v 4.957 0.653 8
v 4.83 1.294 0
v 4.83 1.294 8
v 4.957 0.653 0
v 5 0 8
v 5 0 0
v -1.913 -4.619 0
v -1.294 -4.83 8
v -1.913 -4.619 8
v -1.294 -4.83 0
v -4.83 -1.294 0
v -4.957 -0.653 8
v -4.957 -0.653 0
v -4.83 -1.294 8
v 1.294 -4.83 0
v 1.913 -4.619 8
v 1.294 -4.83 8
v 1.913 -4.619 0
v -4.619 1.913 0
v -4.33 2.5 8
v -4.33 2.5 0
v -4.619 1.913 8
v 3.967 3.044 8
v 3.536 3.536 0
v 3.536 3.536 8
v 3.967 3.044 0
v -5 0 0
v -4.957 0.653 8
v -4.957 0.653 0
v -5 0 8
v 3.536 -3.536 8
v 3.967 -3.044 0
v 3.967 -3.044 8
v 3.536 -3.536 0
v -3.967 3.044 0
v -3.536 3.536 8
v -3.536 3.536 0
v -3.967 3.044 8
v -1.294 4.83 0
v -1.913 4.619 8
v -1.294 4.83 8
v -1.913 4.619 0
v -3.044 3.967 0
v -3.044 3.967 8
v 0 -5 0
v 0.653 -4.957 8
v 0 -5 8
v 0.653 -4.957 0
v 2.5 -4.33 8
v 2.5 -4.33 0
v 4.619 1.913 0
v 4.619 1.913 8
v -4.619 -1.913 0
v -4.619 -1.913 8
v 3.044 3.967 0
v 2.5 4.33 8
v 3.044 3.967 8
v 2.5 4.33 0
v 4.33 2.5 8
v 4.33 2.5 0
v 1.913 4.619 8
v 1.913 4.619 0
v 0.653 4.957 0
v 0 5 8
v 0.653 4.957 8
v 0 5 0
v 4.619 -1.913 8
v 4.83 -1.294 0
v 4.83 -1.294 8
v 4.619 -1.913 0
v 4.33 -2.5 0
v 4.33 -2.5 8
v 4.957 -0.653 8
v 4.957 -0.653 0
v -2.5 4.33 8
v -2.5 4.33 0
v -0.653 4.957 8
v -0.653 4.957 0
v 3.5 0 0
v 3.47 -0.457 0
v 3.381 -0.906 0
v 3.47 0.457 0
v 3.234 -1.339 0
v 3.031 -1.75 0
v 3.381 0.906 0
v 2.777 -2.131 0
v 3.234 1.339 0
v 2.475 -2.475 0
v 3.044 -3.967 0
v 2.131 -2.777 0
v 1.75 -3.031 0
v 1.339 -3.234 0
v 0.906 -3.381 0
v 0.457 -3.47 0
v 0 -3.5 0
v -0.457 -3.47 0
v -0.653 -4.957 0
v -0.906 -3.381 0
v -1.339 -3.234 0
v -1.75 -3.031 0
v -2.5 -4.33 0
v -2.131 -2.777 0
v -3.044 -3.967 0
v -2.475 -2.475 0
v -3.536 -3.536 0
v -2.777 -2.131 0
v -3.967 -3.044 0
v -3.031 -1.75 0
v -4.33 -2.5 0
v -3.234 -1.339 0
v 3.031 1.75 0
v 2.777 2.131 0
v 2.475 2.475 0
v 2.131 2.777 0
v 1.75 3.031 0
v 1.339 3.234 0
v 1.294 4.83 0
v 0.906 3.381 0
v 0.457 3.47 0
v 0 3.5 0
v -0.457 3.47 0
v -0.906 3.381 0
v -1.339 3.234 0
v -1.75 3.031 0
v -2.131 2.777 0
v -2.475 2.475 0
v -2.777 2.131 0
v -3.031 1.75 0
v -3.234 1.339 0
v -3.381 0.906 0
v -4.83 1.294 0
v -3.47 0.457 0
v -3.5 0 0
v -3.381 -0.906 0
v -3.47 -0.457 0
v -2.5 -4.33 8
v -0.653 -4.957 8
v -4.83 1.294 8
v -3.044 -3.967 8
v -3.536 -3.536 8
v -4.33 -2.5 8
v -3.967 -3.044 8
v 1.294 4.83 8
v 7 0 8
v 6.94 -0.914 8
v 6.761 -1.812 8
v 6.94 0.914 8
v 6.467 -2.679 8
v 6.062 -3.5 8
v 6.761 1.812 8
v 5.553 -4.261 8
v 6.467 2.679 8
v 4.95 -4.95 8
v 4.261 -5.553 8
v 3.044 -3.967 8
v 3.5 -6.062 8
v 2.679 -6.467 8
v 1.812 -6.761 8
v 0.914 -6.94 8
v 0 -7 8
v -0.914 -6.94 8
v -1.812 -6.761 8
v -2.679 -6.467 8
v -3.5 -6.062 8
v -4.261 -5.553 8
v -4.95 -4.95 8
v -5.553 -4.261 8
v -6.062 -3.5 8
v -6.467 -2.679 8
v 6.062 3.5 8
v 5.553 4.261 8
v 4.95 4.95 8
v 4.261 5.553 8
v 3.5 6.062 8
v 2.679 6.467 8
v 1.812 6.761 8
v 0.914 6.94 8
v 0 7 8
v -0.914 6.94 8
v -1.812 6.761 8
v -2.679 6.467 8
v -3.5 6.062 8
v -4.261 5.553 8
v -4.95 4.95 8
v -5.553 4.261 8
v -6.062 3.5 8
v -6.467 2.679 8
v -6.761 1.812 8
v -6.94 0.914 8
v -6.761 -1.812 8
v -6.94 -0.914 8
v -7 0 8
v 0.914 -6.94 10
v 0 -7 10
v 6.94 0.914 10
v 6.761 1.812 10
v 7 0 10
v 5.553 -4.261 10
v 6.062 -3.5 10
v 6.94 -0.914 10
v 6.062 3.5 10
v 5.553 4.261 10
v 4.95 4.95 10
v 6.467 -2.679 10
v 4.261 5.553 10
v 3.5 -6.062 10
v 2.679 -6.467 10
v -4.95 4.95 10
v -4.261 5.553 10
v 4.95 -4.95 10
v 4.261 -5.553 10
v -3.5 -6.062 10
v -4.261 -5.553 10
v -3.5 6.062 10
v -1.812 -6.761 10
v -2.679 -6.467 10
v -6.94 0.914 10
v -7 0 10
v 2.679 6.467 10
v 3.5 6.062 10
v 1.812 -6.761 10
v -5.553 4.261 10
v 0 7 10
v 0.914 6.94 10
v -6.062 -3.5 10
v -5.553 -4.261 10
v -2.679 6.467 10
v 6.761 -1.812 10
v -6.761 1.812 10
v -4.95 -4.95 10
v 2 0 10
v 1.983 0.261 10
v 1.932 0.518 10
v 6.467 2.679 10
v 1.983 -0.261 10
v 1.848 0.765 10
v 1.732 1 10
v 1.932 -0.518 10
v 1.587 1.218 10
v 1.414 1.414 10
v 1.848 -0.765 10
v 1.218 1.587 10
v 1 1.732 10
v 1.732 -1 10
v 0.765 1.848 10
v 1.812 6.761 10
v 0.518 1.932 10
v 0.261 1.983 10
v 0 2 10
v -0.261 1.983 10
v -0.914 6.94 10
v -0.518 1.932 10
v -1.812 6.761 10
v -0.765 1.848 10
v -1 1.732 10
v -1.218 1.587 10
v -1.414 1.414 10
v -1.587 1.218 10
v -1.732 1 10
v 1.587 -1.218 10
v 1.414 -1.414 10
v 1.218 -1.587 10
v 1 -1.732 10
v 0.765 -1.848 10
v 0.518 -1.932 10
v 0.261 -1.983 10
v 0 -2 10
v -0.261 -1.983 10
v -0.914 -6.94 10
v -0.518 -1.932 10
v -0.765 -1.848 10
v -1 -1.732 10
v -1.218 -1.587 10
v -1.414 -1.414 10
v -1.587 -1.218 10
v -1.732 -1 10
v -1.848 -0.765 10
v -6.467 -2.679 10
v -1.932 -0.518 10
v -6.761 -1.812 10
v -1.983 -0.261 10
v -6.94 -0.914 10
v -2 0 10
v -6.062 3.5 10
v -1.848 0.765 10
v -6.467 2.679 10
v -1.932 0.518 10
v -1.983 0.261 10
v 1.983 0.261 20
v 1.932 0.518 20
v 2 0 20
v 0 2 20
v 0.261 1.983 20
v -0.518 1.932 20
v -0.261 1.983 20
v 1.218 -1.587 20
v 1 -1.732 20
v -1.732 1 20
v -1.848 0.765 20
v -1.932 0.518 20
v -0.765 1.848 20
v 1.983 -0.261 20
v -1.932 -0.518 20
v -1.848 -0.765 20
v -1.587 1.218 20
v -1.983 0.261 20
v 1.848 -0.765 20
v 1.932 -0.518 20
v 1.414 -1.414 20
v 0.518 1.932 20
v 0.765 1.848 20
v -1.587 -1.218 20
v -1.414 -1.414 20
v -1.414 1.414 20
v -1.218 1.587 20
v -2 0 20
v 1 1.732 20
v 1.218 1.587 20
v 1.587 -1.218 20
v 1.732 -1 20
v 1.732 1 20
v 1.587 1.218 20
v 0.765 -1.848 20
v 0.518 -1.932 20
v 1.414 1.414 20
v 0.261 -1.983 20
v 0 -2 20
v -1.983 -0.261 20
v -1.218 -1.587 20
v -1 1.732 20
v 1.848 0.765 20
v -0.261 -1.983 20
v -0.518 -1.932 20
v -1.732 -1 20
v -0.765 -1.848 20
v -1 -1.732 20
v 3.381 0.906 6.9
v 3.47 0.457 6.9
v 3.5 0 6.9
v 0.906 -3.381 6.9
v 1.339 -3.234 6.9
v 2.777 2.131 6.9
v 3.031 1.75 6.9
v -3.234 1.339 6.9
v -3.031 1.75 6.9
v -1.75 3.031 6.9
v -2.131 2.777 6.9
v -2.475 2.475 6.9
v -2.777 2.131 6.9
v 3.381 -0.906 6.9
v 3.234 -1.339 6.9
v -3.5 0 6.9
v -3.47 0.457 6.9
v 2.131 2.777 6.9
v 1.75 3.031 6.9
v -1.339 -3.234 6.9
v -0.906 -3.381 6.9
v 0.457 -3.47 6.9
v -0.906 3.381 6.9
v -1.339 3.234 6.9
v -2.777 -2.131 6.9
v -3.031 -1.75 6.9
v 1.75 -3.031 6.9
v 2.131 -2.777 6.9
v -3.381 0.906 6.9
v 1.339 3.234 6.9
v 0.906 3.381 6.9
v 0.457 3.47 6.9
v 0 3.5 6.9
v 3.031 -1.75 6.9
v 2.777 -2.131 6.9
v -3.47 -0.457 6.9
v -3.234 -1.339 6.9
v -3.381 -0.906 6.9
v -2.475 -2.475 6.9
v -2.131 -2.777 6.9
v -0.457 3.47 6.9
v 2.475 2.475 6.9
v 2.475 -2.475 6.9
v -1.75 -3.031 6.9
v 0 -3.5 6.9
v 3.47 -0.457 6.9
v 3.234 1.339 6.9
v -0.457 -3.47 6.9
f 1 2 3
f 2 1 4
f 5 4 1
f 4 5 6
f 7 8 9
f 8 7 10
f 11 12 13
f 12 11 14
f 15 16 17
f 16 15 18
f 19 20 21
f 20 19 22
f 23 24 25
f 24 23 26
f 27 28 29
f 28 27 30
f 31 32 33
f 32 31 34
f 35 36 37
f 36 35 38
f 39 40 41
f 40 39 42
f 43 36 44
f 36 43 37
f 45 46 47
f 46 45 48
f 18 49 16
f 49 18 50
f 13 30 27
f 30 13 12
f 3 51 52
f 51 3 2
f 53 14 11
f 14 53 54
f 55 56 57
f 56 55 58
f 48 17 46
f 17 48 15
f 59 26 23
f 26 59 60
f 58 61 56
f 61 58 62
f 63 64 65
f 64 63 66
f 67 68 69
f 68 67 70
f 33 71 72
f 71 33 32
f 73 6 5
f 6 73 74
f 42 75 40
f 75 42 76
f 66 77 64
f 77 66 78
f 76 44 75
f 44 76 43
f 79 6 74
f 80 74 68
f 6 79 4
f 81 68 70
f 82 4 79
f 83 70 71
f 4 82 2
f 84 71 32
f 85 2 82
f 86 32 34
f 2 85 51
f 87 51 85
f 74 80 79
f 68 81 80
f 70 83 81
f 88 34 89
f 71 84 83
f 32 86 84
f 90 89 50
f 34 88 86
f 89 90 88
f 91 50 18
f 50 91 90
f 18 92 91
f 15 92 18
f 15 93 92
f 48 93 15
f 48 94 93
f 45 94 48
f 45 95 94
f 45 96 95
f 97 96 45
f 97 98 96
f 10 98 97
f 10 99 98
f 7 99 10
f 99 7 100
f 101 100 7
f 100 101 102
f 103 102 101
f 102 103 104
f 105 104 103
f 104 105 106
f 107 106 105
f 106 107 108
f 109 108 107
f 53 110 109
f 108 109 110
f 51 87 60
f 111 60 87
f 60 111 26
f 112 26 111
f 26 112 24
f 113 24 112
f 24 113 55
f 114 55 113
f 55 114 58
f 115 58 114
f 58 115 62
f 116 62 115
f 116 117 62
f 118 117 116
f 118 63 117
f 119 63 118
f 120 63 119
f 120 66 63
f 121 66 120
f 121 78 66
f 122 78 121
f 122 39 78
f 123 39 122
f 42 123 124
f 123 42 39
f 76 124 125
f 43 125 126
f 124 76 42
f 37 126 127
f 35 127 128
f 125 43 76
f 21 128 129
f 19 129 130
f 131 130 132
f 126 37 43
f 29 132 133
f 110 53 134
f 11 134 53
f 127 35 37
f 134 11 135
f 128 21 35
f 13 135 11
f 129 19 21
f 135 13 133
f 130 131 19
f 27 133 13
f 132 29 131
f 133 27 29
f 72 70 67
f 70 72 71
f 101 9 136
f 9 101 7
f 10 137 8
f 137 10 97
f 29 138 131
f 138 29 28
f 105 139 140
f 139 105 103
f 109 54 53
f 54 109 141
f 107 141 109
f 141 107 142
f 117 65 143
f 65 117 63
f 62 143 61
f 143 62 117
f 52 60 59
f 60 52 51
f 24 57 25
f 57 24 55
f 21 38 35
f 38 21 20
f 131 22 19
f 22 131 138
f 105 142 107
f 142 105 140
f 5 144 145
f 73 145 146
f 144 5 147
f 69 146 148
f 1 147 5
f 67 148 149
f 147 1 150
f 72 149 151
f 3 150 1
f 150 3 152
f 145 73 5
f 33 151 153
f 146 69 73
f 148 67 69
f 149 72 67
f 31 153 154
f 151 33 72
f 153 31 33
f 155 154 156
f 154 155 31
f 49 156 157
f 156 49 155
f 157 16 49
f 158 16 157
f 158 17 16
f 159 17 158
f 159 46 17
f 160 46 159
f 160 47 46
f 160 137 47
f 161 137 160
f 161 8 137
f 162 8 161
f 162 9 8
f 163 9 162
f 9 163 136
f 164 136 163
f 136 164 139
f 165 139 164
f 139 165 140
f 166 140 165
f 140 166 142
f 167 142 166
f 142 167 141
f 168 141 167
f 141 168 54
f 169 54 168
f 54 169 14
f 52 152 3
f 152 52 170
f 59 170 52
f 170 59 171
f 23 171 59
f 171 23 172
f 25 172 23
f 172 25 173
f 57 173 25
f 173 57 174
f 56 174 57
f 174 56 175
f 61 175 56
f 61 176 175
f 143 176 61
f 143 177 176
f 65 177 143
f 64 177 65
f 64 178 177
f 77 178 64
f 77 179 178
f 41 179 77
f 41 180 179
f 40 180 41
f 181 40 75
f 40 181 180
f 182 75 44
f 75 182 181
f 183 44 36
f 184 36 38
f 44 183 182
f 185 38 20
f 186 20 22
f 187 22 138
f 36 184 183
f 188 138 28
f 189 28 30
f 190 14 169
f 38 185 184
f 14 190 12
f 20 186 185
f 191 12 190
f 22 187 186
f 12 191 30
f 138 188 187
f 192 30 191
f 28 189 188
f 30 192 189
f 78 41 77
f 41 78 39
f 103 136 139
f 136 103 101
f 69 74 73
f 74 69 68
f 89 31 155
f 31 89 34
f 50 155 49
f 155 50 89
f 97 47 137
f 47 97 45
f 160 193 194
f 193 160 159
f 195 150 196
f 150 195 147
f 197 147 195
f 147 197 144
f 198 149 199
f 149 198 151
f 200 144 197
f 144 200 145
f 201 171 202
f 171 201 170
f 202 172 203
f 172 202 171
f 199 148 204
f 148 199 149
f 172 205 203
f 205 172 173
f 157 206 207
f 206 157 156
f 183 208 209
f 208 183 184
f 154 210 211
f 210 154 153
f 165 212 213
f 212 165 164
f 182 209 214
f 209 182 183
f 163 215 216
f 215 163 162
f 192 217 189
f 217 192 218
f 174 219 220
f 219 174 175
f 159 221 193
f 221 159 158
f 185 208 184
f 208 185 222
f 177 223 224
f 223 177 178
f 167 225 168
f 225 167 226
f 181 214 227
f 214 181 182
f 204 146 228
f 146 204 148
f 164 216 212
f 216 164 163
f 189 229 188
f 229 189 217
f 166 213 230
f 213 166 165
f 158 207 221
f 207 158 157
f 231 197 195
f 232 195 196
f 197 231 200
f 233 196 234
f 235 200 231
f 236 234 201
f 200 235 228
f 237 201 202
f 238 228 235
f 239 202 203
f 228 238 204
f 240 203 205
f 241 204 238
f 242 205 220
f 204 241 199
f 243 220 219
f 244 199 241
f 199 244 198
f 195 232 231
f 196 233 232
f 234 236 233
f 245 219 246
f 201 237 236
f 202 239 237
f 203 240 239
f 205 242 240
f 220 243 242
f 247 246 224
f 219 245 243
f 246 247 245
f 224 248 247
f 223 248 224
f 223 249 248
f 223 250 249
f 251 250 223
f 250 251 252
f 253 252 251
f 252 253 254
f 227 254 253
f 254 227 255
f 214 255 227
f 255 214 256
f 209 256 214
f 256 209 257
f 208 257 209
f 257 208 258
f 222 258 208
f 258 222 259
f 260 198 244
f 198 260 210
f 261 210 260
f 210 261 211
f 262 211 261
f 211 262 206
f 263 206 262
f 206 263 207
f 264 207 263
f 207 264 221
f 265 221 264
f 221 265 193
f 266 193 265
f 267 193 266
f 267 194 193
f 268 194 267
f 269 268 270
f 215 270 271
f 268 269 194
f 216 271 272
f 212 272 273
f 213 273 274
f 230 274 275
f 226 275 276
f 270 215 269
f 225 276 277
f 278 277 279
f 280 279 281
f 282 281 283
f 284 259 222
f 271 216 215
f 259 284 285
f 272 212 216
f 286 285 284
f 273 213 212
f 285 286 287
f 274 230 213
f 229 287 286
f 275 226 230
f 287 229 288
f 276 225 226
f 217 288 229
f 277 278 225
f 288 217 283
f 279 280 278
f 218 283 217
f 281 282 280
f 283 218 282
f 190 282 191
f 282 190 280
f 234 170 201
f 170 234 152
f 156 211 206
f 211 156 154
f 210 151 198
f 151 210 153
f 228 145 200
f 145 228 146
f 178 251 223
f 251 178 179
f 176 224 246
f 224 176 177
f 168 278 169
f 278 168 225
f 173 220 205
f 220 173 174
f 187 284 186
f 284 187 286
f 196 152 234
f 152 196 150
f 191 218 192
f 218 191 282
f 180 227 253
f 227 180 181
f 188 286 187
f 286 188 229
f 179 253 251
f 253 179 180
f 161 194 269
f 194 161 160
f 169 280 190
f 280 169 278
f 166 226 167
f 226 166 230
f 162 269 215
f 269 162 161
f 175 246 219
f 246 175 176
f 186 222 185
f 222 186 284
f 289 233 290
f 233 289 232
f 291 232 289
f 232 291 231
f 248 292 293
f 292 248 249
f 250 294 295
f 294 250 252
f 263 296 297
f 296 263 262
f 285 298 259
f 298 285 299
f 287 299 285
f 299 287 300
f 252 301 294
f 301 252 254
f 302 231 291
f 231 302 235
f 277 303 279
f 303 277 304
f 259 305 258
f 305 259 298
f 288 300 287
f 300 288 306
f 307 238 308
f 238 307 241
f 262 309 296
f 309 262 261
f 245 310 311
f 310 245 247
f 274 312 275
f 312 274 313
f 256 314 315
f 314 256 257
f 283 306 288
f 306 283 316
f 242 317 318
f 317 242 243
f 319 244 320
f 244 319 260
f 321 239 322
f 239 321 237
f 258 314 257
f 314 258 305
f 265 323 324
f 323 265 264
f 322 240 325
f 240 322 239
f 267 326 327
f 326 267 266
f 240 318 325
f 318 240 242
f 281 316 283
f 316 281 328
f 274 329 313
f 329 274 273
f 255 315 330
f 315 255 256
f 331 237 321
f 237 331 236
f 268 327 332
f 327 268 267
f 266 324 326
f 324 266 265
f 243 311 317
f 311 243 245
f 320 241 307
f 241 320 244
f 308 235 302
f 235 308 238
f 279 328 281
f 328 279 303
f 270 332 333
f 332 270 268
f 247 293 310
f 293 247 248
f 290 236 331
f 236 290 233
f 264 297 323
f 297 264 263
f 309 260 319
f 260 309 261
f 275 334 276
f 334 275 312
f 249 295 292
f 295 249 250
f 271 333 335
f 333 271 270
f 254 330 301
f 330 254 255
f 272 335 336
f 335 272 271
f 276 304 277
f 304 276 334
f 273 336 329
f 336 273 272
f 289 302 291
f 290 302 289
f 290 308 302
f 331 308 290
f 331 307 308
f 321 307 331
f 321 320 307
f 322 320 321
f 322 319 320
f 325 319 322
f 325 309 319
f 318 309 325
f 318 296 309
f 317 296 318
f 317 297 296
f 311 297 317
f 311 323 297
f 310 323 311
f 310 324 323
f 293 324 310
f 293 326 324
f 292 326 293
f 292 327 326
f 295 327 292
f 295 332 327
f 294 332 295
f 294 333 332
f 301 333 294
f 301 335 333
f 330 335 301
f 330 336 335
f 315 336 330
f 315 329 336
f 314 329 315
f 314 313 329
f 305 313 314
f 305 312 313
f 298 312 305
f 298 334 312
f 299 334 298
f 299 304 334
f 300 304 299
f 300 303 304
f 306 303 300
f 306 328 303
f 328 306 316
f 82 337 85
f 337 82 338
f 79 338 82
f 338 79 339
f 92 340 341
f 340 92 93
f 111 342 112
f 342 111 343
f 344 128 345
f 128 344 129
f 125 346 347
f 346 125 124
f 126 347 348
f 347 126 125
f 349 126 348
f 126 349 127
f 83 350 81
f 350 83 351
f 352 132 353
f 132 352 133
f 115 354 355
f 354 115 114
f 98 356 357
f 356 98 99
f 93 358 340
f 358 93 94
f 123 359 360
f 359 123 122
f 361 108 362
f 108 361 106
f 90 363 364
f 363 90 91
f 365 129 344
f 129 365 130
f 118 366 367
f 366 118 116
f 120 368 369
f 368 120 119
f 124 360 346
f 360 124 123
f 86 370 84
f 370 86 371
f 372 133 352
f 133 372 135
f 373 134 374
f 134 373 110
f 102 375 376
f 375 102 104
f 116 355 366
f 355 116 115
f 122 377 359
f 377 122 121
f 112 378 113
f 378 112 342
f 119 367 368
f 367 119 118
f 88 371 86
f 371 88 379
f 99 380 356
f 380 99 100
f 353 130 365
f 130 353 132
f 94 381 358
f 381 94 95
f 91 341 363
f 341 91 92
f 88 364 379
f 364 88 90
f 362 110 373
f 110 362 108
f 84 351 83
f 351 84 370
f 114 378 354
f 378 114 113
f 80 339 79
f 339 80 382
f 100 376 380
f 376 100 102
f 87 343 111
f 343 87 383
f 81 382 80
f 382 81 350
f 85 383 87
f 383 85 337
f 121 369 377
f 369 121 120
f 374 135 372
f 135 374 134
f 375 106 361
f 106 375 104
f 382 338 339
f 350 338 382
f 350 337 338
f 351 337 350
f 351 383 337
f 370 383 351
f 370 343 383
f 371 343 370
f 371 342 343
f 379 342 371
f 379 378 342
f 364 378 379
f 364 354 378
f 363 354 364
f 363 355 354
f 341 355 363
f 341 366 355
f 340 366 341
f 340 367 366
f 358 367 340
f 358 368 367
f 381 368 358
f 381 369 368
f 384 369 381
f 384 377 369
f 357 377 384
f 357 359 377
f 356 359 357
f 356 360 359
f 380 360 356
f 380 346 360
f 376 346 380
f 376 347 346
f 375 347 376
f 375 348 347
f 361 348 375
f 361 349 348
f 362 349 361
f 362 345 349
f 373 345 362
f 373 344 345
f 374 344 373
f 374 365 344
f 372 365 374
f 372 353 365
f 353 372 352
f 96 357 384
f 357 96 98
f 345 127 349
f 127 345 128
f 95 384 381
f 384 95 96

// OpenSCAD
// ============================================================
//  MSE-6 — Shell Alignment Pin Insert  (print 4×)
//  Bonds into the bottom shell top edge (Z=74.2mm mating face)
//  to register the top dome.  Print 2 with pin UP (bottom shell)
//  and 2 with socket cavity (top shell).
//
//  Set pin_mode = true  → pin   (glues into bottom shell rim)
//  Set pin_mode = false → socket (glues into top shell rim)
//
//  Also includes: M3 screw boss version for the 2 side positions
//  (set screw_mode = true for screw boss variant)
// ============================================================
$fn = 48;

// ── Toggle these ────────────────────────────────────────────
pin_mode   = true;   // true=pin, false=socket
screw_mode = false;  // true=M3 screw boss instead of dowel pin

// ── Dimensions ──────────────────────────────────────────────
// Body that glues into shell rim
body_d     = 10.0;  // outer diameter of insert body
body_h     =  8.0;  // depth that sits in shell rim pocket
flange_d   = 14.0;  // flange that rests on shell mating face
flange_t   =  2.0;

// Dowel pin
pin_d      =  4.0;  // 4mm dowel pin OD
pin_h      = 10.0;  // pin protrusion above flange
pin_hole_d =  4.2;  // socket hole (0.2mm clearance)
pin_hole_h = 10.5;  // socket depth

// M3 screw boss
m3_boss_d  =  7.0;
m3_d       =  3.2;  // M3 self-tap
m3_h       = 12.0;  // screw engagement depth

module alignment_pin() {
    difference() {
        union() {
            // Insert body (goes into shell rim)
            cylinder(d = body_d, h = body_h);
            // Flange
            translate([0, 0, body_h])
                cylinder(d = flange_d, h = flange_t);
            // Pin or screw boss above flange
            translate([0, 0, body_h + flange_t]) {
                if (screw_mode) {
                    cylinder(d = m3_boss_d, h = m3_h);
                } else if (pin_mode) {
                    cylinder(d = pin_d, h = pin_h);
                }
            }
        }
        // Socket hole (if socket mode)
        if (!pin_mode && !screw_mode) {
            translate([0, 0, body_h + flange_t - 0.1])
                cylinder(d = pin_hole_d, h = pin_hole_h);
            translate([0, 0, -0.1])
                cylinder(d = pin_hole_d, h = body_h + flange_t + pin_hole_h + 0.2);
        }
        // M3 hole through screw boss
        if (screw_mode) {
            translate([0, 0, -0.1])
                cylinder(d = m3_d, h = body_h + flange_t + m3_h + 0.2);
        }
        // Hollow body core (reduce material, keep strength)
        translate([0, 0, -0.1])
            cylinder(d = body_d - 3.0, h = body_h - 1);
    }
}

alignment_pin();
